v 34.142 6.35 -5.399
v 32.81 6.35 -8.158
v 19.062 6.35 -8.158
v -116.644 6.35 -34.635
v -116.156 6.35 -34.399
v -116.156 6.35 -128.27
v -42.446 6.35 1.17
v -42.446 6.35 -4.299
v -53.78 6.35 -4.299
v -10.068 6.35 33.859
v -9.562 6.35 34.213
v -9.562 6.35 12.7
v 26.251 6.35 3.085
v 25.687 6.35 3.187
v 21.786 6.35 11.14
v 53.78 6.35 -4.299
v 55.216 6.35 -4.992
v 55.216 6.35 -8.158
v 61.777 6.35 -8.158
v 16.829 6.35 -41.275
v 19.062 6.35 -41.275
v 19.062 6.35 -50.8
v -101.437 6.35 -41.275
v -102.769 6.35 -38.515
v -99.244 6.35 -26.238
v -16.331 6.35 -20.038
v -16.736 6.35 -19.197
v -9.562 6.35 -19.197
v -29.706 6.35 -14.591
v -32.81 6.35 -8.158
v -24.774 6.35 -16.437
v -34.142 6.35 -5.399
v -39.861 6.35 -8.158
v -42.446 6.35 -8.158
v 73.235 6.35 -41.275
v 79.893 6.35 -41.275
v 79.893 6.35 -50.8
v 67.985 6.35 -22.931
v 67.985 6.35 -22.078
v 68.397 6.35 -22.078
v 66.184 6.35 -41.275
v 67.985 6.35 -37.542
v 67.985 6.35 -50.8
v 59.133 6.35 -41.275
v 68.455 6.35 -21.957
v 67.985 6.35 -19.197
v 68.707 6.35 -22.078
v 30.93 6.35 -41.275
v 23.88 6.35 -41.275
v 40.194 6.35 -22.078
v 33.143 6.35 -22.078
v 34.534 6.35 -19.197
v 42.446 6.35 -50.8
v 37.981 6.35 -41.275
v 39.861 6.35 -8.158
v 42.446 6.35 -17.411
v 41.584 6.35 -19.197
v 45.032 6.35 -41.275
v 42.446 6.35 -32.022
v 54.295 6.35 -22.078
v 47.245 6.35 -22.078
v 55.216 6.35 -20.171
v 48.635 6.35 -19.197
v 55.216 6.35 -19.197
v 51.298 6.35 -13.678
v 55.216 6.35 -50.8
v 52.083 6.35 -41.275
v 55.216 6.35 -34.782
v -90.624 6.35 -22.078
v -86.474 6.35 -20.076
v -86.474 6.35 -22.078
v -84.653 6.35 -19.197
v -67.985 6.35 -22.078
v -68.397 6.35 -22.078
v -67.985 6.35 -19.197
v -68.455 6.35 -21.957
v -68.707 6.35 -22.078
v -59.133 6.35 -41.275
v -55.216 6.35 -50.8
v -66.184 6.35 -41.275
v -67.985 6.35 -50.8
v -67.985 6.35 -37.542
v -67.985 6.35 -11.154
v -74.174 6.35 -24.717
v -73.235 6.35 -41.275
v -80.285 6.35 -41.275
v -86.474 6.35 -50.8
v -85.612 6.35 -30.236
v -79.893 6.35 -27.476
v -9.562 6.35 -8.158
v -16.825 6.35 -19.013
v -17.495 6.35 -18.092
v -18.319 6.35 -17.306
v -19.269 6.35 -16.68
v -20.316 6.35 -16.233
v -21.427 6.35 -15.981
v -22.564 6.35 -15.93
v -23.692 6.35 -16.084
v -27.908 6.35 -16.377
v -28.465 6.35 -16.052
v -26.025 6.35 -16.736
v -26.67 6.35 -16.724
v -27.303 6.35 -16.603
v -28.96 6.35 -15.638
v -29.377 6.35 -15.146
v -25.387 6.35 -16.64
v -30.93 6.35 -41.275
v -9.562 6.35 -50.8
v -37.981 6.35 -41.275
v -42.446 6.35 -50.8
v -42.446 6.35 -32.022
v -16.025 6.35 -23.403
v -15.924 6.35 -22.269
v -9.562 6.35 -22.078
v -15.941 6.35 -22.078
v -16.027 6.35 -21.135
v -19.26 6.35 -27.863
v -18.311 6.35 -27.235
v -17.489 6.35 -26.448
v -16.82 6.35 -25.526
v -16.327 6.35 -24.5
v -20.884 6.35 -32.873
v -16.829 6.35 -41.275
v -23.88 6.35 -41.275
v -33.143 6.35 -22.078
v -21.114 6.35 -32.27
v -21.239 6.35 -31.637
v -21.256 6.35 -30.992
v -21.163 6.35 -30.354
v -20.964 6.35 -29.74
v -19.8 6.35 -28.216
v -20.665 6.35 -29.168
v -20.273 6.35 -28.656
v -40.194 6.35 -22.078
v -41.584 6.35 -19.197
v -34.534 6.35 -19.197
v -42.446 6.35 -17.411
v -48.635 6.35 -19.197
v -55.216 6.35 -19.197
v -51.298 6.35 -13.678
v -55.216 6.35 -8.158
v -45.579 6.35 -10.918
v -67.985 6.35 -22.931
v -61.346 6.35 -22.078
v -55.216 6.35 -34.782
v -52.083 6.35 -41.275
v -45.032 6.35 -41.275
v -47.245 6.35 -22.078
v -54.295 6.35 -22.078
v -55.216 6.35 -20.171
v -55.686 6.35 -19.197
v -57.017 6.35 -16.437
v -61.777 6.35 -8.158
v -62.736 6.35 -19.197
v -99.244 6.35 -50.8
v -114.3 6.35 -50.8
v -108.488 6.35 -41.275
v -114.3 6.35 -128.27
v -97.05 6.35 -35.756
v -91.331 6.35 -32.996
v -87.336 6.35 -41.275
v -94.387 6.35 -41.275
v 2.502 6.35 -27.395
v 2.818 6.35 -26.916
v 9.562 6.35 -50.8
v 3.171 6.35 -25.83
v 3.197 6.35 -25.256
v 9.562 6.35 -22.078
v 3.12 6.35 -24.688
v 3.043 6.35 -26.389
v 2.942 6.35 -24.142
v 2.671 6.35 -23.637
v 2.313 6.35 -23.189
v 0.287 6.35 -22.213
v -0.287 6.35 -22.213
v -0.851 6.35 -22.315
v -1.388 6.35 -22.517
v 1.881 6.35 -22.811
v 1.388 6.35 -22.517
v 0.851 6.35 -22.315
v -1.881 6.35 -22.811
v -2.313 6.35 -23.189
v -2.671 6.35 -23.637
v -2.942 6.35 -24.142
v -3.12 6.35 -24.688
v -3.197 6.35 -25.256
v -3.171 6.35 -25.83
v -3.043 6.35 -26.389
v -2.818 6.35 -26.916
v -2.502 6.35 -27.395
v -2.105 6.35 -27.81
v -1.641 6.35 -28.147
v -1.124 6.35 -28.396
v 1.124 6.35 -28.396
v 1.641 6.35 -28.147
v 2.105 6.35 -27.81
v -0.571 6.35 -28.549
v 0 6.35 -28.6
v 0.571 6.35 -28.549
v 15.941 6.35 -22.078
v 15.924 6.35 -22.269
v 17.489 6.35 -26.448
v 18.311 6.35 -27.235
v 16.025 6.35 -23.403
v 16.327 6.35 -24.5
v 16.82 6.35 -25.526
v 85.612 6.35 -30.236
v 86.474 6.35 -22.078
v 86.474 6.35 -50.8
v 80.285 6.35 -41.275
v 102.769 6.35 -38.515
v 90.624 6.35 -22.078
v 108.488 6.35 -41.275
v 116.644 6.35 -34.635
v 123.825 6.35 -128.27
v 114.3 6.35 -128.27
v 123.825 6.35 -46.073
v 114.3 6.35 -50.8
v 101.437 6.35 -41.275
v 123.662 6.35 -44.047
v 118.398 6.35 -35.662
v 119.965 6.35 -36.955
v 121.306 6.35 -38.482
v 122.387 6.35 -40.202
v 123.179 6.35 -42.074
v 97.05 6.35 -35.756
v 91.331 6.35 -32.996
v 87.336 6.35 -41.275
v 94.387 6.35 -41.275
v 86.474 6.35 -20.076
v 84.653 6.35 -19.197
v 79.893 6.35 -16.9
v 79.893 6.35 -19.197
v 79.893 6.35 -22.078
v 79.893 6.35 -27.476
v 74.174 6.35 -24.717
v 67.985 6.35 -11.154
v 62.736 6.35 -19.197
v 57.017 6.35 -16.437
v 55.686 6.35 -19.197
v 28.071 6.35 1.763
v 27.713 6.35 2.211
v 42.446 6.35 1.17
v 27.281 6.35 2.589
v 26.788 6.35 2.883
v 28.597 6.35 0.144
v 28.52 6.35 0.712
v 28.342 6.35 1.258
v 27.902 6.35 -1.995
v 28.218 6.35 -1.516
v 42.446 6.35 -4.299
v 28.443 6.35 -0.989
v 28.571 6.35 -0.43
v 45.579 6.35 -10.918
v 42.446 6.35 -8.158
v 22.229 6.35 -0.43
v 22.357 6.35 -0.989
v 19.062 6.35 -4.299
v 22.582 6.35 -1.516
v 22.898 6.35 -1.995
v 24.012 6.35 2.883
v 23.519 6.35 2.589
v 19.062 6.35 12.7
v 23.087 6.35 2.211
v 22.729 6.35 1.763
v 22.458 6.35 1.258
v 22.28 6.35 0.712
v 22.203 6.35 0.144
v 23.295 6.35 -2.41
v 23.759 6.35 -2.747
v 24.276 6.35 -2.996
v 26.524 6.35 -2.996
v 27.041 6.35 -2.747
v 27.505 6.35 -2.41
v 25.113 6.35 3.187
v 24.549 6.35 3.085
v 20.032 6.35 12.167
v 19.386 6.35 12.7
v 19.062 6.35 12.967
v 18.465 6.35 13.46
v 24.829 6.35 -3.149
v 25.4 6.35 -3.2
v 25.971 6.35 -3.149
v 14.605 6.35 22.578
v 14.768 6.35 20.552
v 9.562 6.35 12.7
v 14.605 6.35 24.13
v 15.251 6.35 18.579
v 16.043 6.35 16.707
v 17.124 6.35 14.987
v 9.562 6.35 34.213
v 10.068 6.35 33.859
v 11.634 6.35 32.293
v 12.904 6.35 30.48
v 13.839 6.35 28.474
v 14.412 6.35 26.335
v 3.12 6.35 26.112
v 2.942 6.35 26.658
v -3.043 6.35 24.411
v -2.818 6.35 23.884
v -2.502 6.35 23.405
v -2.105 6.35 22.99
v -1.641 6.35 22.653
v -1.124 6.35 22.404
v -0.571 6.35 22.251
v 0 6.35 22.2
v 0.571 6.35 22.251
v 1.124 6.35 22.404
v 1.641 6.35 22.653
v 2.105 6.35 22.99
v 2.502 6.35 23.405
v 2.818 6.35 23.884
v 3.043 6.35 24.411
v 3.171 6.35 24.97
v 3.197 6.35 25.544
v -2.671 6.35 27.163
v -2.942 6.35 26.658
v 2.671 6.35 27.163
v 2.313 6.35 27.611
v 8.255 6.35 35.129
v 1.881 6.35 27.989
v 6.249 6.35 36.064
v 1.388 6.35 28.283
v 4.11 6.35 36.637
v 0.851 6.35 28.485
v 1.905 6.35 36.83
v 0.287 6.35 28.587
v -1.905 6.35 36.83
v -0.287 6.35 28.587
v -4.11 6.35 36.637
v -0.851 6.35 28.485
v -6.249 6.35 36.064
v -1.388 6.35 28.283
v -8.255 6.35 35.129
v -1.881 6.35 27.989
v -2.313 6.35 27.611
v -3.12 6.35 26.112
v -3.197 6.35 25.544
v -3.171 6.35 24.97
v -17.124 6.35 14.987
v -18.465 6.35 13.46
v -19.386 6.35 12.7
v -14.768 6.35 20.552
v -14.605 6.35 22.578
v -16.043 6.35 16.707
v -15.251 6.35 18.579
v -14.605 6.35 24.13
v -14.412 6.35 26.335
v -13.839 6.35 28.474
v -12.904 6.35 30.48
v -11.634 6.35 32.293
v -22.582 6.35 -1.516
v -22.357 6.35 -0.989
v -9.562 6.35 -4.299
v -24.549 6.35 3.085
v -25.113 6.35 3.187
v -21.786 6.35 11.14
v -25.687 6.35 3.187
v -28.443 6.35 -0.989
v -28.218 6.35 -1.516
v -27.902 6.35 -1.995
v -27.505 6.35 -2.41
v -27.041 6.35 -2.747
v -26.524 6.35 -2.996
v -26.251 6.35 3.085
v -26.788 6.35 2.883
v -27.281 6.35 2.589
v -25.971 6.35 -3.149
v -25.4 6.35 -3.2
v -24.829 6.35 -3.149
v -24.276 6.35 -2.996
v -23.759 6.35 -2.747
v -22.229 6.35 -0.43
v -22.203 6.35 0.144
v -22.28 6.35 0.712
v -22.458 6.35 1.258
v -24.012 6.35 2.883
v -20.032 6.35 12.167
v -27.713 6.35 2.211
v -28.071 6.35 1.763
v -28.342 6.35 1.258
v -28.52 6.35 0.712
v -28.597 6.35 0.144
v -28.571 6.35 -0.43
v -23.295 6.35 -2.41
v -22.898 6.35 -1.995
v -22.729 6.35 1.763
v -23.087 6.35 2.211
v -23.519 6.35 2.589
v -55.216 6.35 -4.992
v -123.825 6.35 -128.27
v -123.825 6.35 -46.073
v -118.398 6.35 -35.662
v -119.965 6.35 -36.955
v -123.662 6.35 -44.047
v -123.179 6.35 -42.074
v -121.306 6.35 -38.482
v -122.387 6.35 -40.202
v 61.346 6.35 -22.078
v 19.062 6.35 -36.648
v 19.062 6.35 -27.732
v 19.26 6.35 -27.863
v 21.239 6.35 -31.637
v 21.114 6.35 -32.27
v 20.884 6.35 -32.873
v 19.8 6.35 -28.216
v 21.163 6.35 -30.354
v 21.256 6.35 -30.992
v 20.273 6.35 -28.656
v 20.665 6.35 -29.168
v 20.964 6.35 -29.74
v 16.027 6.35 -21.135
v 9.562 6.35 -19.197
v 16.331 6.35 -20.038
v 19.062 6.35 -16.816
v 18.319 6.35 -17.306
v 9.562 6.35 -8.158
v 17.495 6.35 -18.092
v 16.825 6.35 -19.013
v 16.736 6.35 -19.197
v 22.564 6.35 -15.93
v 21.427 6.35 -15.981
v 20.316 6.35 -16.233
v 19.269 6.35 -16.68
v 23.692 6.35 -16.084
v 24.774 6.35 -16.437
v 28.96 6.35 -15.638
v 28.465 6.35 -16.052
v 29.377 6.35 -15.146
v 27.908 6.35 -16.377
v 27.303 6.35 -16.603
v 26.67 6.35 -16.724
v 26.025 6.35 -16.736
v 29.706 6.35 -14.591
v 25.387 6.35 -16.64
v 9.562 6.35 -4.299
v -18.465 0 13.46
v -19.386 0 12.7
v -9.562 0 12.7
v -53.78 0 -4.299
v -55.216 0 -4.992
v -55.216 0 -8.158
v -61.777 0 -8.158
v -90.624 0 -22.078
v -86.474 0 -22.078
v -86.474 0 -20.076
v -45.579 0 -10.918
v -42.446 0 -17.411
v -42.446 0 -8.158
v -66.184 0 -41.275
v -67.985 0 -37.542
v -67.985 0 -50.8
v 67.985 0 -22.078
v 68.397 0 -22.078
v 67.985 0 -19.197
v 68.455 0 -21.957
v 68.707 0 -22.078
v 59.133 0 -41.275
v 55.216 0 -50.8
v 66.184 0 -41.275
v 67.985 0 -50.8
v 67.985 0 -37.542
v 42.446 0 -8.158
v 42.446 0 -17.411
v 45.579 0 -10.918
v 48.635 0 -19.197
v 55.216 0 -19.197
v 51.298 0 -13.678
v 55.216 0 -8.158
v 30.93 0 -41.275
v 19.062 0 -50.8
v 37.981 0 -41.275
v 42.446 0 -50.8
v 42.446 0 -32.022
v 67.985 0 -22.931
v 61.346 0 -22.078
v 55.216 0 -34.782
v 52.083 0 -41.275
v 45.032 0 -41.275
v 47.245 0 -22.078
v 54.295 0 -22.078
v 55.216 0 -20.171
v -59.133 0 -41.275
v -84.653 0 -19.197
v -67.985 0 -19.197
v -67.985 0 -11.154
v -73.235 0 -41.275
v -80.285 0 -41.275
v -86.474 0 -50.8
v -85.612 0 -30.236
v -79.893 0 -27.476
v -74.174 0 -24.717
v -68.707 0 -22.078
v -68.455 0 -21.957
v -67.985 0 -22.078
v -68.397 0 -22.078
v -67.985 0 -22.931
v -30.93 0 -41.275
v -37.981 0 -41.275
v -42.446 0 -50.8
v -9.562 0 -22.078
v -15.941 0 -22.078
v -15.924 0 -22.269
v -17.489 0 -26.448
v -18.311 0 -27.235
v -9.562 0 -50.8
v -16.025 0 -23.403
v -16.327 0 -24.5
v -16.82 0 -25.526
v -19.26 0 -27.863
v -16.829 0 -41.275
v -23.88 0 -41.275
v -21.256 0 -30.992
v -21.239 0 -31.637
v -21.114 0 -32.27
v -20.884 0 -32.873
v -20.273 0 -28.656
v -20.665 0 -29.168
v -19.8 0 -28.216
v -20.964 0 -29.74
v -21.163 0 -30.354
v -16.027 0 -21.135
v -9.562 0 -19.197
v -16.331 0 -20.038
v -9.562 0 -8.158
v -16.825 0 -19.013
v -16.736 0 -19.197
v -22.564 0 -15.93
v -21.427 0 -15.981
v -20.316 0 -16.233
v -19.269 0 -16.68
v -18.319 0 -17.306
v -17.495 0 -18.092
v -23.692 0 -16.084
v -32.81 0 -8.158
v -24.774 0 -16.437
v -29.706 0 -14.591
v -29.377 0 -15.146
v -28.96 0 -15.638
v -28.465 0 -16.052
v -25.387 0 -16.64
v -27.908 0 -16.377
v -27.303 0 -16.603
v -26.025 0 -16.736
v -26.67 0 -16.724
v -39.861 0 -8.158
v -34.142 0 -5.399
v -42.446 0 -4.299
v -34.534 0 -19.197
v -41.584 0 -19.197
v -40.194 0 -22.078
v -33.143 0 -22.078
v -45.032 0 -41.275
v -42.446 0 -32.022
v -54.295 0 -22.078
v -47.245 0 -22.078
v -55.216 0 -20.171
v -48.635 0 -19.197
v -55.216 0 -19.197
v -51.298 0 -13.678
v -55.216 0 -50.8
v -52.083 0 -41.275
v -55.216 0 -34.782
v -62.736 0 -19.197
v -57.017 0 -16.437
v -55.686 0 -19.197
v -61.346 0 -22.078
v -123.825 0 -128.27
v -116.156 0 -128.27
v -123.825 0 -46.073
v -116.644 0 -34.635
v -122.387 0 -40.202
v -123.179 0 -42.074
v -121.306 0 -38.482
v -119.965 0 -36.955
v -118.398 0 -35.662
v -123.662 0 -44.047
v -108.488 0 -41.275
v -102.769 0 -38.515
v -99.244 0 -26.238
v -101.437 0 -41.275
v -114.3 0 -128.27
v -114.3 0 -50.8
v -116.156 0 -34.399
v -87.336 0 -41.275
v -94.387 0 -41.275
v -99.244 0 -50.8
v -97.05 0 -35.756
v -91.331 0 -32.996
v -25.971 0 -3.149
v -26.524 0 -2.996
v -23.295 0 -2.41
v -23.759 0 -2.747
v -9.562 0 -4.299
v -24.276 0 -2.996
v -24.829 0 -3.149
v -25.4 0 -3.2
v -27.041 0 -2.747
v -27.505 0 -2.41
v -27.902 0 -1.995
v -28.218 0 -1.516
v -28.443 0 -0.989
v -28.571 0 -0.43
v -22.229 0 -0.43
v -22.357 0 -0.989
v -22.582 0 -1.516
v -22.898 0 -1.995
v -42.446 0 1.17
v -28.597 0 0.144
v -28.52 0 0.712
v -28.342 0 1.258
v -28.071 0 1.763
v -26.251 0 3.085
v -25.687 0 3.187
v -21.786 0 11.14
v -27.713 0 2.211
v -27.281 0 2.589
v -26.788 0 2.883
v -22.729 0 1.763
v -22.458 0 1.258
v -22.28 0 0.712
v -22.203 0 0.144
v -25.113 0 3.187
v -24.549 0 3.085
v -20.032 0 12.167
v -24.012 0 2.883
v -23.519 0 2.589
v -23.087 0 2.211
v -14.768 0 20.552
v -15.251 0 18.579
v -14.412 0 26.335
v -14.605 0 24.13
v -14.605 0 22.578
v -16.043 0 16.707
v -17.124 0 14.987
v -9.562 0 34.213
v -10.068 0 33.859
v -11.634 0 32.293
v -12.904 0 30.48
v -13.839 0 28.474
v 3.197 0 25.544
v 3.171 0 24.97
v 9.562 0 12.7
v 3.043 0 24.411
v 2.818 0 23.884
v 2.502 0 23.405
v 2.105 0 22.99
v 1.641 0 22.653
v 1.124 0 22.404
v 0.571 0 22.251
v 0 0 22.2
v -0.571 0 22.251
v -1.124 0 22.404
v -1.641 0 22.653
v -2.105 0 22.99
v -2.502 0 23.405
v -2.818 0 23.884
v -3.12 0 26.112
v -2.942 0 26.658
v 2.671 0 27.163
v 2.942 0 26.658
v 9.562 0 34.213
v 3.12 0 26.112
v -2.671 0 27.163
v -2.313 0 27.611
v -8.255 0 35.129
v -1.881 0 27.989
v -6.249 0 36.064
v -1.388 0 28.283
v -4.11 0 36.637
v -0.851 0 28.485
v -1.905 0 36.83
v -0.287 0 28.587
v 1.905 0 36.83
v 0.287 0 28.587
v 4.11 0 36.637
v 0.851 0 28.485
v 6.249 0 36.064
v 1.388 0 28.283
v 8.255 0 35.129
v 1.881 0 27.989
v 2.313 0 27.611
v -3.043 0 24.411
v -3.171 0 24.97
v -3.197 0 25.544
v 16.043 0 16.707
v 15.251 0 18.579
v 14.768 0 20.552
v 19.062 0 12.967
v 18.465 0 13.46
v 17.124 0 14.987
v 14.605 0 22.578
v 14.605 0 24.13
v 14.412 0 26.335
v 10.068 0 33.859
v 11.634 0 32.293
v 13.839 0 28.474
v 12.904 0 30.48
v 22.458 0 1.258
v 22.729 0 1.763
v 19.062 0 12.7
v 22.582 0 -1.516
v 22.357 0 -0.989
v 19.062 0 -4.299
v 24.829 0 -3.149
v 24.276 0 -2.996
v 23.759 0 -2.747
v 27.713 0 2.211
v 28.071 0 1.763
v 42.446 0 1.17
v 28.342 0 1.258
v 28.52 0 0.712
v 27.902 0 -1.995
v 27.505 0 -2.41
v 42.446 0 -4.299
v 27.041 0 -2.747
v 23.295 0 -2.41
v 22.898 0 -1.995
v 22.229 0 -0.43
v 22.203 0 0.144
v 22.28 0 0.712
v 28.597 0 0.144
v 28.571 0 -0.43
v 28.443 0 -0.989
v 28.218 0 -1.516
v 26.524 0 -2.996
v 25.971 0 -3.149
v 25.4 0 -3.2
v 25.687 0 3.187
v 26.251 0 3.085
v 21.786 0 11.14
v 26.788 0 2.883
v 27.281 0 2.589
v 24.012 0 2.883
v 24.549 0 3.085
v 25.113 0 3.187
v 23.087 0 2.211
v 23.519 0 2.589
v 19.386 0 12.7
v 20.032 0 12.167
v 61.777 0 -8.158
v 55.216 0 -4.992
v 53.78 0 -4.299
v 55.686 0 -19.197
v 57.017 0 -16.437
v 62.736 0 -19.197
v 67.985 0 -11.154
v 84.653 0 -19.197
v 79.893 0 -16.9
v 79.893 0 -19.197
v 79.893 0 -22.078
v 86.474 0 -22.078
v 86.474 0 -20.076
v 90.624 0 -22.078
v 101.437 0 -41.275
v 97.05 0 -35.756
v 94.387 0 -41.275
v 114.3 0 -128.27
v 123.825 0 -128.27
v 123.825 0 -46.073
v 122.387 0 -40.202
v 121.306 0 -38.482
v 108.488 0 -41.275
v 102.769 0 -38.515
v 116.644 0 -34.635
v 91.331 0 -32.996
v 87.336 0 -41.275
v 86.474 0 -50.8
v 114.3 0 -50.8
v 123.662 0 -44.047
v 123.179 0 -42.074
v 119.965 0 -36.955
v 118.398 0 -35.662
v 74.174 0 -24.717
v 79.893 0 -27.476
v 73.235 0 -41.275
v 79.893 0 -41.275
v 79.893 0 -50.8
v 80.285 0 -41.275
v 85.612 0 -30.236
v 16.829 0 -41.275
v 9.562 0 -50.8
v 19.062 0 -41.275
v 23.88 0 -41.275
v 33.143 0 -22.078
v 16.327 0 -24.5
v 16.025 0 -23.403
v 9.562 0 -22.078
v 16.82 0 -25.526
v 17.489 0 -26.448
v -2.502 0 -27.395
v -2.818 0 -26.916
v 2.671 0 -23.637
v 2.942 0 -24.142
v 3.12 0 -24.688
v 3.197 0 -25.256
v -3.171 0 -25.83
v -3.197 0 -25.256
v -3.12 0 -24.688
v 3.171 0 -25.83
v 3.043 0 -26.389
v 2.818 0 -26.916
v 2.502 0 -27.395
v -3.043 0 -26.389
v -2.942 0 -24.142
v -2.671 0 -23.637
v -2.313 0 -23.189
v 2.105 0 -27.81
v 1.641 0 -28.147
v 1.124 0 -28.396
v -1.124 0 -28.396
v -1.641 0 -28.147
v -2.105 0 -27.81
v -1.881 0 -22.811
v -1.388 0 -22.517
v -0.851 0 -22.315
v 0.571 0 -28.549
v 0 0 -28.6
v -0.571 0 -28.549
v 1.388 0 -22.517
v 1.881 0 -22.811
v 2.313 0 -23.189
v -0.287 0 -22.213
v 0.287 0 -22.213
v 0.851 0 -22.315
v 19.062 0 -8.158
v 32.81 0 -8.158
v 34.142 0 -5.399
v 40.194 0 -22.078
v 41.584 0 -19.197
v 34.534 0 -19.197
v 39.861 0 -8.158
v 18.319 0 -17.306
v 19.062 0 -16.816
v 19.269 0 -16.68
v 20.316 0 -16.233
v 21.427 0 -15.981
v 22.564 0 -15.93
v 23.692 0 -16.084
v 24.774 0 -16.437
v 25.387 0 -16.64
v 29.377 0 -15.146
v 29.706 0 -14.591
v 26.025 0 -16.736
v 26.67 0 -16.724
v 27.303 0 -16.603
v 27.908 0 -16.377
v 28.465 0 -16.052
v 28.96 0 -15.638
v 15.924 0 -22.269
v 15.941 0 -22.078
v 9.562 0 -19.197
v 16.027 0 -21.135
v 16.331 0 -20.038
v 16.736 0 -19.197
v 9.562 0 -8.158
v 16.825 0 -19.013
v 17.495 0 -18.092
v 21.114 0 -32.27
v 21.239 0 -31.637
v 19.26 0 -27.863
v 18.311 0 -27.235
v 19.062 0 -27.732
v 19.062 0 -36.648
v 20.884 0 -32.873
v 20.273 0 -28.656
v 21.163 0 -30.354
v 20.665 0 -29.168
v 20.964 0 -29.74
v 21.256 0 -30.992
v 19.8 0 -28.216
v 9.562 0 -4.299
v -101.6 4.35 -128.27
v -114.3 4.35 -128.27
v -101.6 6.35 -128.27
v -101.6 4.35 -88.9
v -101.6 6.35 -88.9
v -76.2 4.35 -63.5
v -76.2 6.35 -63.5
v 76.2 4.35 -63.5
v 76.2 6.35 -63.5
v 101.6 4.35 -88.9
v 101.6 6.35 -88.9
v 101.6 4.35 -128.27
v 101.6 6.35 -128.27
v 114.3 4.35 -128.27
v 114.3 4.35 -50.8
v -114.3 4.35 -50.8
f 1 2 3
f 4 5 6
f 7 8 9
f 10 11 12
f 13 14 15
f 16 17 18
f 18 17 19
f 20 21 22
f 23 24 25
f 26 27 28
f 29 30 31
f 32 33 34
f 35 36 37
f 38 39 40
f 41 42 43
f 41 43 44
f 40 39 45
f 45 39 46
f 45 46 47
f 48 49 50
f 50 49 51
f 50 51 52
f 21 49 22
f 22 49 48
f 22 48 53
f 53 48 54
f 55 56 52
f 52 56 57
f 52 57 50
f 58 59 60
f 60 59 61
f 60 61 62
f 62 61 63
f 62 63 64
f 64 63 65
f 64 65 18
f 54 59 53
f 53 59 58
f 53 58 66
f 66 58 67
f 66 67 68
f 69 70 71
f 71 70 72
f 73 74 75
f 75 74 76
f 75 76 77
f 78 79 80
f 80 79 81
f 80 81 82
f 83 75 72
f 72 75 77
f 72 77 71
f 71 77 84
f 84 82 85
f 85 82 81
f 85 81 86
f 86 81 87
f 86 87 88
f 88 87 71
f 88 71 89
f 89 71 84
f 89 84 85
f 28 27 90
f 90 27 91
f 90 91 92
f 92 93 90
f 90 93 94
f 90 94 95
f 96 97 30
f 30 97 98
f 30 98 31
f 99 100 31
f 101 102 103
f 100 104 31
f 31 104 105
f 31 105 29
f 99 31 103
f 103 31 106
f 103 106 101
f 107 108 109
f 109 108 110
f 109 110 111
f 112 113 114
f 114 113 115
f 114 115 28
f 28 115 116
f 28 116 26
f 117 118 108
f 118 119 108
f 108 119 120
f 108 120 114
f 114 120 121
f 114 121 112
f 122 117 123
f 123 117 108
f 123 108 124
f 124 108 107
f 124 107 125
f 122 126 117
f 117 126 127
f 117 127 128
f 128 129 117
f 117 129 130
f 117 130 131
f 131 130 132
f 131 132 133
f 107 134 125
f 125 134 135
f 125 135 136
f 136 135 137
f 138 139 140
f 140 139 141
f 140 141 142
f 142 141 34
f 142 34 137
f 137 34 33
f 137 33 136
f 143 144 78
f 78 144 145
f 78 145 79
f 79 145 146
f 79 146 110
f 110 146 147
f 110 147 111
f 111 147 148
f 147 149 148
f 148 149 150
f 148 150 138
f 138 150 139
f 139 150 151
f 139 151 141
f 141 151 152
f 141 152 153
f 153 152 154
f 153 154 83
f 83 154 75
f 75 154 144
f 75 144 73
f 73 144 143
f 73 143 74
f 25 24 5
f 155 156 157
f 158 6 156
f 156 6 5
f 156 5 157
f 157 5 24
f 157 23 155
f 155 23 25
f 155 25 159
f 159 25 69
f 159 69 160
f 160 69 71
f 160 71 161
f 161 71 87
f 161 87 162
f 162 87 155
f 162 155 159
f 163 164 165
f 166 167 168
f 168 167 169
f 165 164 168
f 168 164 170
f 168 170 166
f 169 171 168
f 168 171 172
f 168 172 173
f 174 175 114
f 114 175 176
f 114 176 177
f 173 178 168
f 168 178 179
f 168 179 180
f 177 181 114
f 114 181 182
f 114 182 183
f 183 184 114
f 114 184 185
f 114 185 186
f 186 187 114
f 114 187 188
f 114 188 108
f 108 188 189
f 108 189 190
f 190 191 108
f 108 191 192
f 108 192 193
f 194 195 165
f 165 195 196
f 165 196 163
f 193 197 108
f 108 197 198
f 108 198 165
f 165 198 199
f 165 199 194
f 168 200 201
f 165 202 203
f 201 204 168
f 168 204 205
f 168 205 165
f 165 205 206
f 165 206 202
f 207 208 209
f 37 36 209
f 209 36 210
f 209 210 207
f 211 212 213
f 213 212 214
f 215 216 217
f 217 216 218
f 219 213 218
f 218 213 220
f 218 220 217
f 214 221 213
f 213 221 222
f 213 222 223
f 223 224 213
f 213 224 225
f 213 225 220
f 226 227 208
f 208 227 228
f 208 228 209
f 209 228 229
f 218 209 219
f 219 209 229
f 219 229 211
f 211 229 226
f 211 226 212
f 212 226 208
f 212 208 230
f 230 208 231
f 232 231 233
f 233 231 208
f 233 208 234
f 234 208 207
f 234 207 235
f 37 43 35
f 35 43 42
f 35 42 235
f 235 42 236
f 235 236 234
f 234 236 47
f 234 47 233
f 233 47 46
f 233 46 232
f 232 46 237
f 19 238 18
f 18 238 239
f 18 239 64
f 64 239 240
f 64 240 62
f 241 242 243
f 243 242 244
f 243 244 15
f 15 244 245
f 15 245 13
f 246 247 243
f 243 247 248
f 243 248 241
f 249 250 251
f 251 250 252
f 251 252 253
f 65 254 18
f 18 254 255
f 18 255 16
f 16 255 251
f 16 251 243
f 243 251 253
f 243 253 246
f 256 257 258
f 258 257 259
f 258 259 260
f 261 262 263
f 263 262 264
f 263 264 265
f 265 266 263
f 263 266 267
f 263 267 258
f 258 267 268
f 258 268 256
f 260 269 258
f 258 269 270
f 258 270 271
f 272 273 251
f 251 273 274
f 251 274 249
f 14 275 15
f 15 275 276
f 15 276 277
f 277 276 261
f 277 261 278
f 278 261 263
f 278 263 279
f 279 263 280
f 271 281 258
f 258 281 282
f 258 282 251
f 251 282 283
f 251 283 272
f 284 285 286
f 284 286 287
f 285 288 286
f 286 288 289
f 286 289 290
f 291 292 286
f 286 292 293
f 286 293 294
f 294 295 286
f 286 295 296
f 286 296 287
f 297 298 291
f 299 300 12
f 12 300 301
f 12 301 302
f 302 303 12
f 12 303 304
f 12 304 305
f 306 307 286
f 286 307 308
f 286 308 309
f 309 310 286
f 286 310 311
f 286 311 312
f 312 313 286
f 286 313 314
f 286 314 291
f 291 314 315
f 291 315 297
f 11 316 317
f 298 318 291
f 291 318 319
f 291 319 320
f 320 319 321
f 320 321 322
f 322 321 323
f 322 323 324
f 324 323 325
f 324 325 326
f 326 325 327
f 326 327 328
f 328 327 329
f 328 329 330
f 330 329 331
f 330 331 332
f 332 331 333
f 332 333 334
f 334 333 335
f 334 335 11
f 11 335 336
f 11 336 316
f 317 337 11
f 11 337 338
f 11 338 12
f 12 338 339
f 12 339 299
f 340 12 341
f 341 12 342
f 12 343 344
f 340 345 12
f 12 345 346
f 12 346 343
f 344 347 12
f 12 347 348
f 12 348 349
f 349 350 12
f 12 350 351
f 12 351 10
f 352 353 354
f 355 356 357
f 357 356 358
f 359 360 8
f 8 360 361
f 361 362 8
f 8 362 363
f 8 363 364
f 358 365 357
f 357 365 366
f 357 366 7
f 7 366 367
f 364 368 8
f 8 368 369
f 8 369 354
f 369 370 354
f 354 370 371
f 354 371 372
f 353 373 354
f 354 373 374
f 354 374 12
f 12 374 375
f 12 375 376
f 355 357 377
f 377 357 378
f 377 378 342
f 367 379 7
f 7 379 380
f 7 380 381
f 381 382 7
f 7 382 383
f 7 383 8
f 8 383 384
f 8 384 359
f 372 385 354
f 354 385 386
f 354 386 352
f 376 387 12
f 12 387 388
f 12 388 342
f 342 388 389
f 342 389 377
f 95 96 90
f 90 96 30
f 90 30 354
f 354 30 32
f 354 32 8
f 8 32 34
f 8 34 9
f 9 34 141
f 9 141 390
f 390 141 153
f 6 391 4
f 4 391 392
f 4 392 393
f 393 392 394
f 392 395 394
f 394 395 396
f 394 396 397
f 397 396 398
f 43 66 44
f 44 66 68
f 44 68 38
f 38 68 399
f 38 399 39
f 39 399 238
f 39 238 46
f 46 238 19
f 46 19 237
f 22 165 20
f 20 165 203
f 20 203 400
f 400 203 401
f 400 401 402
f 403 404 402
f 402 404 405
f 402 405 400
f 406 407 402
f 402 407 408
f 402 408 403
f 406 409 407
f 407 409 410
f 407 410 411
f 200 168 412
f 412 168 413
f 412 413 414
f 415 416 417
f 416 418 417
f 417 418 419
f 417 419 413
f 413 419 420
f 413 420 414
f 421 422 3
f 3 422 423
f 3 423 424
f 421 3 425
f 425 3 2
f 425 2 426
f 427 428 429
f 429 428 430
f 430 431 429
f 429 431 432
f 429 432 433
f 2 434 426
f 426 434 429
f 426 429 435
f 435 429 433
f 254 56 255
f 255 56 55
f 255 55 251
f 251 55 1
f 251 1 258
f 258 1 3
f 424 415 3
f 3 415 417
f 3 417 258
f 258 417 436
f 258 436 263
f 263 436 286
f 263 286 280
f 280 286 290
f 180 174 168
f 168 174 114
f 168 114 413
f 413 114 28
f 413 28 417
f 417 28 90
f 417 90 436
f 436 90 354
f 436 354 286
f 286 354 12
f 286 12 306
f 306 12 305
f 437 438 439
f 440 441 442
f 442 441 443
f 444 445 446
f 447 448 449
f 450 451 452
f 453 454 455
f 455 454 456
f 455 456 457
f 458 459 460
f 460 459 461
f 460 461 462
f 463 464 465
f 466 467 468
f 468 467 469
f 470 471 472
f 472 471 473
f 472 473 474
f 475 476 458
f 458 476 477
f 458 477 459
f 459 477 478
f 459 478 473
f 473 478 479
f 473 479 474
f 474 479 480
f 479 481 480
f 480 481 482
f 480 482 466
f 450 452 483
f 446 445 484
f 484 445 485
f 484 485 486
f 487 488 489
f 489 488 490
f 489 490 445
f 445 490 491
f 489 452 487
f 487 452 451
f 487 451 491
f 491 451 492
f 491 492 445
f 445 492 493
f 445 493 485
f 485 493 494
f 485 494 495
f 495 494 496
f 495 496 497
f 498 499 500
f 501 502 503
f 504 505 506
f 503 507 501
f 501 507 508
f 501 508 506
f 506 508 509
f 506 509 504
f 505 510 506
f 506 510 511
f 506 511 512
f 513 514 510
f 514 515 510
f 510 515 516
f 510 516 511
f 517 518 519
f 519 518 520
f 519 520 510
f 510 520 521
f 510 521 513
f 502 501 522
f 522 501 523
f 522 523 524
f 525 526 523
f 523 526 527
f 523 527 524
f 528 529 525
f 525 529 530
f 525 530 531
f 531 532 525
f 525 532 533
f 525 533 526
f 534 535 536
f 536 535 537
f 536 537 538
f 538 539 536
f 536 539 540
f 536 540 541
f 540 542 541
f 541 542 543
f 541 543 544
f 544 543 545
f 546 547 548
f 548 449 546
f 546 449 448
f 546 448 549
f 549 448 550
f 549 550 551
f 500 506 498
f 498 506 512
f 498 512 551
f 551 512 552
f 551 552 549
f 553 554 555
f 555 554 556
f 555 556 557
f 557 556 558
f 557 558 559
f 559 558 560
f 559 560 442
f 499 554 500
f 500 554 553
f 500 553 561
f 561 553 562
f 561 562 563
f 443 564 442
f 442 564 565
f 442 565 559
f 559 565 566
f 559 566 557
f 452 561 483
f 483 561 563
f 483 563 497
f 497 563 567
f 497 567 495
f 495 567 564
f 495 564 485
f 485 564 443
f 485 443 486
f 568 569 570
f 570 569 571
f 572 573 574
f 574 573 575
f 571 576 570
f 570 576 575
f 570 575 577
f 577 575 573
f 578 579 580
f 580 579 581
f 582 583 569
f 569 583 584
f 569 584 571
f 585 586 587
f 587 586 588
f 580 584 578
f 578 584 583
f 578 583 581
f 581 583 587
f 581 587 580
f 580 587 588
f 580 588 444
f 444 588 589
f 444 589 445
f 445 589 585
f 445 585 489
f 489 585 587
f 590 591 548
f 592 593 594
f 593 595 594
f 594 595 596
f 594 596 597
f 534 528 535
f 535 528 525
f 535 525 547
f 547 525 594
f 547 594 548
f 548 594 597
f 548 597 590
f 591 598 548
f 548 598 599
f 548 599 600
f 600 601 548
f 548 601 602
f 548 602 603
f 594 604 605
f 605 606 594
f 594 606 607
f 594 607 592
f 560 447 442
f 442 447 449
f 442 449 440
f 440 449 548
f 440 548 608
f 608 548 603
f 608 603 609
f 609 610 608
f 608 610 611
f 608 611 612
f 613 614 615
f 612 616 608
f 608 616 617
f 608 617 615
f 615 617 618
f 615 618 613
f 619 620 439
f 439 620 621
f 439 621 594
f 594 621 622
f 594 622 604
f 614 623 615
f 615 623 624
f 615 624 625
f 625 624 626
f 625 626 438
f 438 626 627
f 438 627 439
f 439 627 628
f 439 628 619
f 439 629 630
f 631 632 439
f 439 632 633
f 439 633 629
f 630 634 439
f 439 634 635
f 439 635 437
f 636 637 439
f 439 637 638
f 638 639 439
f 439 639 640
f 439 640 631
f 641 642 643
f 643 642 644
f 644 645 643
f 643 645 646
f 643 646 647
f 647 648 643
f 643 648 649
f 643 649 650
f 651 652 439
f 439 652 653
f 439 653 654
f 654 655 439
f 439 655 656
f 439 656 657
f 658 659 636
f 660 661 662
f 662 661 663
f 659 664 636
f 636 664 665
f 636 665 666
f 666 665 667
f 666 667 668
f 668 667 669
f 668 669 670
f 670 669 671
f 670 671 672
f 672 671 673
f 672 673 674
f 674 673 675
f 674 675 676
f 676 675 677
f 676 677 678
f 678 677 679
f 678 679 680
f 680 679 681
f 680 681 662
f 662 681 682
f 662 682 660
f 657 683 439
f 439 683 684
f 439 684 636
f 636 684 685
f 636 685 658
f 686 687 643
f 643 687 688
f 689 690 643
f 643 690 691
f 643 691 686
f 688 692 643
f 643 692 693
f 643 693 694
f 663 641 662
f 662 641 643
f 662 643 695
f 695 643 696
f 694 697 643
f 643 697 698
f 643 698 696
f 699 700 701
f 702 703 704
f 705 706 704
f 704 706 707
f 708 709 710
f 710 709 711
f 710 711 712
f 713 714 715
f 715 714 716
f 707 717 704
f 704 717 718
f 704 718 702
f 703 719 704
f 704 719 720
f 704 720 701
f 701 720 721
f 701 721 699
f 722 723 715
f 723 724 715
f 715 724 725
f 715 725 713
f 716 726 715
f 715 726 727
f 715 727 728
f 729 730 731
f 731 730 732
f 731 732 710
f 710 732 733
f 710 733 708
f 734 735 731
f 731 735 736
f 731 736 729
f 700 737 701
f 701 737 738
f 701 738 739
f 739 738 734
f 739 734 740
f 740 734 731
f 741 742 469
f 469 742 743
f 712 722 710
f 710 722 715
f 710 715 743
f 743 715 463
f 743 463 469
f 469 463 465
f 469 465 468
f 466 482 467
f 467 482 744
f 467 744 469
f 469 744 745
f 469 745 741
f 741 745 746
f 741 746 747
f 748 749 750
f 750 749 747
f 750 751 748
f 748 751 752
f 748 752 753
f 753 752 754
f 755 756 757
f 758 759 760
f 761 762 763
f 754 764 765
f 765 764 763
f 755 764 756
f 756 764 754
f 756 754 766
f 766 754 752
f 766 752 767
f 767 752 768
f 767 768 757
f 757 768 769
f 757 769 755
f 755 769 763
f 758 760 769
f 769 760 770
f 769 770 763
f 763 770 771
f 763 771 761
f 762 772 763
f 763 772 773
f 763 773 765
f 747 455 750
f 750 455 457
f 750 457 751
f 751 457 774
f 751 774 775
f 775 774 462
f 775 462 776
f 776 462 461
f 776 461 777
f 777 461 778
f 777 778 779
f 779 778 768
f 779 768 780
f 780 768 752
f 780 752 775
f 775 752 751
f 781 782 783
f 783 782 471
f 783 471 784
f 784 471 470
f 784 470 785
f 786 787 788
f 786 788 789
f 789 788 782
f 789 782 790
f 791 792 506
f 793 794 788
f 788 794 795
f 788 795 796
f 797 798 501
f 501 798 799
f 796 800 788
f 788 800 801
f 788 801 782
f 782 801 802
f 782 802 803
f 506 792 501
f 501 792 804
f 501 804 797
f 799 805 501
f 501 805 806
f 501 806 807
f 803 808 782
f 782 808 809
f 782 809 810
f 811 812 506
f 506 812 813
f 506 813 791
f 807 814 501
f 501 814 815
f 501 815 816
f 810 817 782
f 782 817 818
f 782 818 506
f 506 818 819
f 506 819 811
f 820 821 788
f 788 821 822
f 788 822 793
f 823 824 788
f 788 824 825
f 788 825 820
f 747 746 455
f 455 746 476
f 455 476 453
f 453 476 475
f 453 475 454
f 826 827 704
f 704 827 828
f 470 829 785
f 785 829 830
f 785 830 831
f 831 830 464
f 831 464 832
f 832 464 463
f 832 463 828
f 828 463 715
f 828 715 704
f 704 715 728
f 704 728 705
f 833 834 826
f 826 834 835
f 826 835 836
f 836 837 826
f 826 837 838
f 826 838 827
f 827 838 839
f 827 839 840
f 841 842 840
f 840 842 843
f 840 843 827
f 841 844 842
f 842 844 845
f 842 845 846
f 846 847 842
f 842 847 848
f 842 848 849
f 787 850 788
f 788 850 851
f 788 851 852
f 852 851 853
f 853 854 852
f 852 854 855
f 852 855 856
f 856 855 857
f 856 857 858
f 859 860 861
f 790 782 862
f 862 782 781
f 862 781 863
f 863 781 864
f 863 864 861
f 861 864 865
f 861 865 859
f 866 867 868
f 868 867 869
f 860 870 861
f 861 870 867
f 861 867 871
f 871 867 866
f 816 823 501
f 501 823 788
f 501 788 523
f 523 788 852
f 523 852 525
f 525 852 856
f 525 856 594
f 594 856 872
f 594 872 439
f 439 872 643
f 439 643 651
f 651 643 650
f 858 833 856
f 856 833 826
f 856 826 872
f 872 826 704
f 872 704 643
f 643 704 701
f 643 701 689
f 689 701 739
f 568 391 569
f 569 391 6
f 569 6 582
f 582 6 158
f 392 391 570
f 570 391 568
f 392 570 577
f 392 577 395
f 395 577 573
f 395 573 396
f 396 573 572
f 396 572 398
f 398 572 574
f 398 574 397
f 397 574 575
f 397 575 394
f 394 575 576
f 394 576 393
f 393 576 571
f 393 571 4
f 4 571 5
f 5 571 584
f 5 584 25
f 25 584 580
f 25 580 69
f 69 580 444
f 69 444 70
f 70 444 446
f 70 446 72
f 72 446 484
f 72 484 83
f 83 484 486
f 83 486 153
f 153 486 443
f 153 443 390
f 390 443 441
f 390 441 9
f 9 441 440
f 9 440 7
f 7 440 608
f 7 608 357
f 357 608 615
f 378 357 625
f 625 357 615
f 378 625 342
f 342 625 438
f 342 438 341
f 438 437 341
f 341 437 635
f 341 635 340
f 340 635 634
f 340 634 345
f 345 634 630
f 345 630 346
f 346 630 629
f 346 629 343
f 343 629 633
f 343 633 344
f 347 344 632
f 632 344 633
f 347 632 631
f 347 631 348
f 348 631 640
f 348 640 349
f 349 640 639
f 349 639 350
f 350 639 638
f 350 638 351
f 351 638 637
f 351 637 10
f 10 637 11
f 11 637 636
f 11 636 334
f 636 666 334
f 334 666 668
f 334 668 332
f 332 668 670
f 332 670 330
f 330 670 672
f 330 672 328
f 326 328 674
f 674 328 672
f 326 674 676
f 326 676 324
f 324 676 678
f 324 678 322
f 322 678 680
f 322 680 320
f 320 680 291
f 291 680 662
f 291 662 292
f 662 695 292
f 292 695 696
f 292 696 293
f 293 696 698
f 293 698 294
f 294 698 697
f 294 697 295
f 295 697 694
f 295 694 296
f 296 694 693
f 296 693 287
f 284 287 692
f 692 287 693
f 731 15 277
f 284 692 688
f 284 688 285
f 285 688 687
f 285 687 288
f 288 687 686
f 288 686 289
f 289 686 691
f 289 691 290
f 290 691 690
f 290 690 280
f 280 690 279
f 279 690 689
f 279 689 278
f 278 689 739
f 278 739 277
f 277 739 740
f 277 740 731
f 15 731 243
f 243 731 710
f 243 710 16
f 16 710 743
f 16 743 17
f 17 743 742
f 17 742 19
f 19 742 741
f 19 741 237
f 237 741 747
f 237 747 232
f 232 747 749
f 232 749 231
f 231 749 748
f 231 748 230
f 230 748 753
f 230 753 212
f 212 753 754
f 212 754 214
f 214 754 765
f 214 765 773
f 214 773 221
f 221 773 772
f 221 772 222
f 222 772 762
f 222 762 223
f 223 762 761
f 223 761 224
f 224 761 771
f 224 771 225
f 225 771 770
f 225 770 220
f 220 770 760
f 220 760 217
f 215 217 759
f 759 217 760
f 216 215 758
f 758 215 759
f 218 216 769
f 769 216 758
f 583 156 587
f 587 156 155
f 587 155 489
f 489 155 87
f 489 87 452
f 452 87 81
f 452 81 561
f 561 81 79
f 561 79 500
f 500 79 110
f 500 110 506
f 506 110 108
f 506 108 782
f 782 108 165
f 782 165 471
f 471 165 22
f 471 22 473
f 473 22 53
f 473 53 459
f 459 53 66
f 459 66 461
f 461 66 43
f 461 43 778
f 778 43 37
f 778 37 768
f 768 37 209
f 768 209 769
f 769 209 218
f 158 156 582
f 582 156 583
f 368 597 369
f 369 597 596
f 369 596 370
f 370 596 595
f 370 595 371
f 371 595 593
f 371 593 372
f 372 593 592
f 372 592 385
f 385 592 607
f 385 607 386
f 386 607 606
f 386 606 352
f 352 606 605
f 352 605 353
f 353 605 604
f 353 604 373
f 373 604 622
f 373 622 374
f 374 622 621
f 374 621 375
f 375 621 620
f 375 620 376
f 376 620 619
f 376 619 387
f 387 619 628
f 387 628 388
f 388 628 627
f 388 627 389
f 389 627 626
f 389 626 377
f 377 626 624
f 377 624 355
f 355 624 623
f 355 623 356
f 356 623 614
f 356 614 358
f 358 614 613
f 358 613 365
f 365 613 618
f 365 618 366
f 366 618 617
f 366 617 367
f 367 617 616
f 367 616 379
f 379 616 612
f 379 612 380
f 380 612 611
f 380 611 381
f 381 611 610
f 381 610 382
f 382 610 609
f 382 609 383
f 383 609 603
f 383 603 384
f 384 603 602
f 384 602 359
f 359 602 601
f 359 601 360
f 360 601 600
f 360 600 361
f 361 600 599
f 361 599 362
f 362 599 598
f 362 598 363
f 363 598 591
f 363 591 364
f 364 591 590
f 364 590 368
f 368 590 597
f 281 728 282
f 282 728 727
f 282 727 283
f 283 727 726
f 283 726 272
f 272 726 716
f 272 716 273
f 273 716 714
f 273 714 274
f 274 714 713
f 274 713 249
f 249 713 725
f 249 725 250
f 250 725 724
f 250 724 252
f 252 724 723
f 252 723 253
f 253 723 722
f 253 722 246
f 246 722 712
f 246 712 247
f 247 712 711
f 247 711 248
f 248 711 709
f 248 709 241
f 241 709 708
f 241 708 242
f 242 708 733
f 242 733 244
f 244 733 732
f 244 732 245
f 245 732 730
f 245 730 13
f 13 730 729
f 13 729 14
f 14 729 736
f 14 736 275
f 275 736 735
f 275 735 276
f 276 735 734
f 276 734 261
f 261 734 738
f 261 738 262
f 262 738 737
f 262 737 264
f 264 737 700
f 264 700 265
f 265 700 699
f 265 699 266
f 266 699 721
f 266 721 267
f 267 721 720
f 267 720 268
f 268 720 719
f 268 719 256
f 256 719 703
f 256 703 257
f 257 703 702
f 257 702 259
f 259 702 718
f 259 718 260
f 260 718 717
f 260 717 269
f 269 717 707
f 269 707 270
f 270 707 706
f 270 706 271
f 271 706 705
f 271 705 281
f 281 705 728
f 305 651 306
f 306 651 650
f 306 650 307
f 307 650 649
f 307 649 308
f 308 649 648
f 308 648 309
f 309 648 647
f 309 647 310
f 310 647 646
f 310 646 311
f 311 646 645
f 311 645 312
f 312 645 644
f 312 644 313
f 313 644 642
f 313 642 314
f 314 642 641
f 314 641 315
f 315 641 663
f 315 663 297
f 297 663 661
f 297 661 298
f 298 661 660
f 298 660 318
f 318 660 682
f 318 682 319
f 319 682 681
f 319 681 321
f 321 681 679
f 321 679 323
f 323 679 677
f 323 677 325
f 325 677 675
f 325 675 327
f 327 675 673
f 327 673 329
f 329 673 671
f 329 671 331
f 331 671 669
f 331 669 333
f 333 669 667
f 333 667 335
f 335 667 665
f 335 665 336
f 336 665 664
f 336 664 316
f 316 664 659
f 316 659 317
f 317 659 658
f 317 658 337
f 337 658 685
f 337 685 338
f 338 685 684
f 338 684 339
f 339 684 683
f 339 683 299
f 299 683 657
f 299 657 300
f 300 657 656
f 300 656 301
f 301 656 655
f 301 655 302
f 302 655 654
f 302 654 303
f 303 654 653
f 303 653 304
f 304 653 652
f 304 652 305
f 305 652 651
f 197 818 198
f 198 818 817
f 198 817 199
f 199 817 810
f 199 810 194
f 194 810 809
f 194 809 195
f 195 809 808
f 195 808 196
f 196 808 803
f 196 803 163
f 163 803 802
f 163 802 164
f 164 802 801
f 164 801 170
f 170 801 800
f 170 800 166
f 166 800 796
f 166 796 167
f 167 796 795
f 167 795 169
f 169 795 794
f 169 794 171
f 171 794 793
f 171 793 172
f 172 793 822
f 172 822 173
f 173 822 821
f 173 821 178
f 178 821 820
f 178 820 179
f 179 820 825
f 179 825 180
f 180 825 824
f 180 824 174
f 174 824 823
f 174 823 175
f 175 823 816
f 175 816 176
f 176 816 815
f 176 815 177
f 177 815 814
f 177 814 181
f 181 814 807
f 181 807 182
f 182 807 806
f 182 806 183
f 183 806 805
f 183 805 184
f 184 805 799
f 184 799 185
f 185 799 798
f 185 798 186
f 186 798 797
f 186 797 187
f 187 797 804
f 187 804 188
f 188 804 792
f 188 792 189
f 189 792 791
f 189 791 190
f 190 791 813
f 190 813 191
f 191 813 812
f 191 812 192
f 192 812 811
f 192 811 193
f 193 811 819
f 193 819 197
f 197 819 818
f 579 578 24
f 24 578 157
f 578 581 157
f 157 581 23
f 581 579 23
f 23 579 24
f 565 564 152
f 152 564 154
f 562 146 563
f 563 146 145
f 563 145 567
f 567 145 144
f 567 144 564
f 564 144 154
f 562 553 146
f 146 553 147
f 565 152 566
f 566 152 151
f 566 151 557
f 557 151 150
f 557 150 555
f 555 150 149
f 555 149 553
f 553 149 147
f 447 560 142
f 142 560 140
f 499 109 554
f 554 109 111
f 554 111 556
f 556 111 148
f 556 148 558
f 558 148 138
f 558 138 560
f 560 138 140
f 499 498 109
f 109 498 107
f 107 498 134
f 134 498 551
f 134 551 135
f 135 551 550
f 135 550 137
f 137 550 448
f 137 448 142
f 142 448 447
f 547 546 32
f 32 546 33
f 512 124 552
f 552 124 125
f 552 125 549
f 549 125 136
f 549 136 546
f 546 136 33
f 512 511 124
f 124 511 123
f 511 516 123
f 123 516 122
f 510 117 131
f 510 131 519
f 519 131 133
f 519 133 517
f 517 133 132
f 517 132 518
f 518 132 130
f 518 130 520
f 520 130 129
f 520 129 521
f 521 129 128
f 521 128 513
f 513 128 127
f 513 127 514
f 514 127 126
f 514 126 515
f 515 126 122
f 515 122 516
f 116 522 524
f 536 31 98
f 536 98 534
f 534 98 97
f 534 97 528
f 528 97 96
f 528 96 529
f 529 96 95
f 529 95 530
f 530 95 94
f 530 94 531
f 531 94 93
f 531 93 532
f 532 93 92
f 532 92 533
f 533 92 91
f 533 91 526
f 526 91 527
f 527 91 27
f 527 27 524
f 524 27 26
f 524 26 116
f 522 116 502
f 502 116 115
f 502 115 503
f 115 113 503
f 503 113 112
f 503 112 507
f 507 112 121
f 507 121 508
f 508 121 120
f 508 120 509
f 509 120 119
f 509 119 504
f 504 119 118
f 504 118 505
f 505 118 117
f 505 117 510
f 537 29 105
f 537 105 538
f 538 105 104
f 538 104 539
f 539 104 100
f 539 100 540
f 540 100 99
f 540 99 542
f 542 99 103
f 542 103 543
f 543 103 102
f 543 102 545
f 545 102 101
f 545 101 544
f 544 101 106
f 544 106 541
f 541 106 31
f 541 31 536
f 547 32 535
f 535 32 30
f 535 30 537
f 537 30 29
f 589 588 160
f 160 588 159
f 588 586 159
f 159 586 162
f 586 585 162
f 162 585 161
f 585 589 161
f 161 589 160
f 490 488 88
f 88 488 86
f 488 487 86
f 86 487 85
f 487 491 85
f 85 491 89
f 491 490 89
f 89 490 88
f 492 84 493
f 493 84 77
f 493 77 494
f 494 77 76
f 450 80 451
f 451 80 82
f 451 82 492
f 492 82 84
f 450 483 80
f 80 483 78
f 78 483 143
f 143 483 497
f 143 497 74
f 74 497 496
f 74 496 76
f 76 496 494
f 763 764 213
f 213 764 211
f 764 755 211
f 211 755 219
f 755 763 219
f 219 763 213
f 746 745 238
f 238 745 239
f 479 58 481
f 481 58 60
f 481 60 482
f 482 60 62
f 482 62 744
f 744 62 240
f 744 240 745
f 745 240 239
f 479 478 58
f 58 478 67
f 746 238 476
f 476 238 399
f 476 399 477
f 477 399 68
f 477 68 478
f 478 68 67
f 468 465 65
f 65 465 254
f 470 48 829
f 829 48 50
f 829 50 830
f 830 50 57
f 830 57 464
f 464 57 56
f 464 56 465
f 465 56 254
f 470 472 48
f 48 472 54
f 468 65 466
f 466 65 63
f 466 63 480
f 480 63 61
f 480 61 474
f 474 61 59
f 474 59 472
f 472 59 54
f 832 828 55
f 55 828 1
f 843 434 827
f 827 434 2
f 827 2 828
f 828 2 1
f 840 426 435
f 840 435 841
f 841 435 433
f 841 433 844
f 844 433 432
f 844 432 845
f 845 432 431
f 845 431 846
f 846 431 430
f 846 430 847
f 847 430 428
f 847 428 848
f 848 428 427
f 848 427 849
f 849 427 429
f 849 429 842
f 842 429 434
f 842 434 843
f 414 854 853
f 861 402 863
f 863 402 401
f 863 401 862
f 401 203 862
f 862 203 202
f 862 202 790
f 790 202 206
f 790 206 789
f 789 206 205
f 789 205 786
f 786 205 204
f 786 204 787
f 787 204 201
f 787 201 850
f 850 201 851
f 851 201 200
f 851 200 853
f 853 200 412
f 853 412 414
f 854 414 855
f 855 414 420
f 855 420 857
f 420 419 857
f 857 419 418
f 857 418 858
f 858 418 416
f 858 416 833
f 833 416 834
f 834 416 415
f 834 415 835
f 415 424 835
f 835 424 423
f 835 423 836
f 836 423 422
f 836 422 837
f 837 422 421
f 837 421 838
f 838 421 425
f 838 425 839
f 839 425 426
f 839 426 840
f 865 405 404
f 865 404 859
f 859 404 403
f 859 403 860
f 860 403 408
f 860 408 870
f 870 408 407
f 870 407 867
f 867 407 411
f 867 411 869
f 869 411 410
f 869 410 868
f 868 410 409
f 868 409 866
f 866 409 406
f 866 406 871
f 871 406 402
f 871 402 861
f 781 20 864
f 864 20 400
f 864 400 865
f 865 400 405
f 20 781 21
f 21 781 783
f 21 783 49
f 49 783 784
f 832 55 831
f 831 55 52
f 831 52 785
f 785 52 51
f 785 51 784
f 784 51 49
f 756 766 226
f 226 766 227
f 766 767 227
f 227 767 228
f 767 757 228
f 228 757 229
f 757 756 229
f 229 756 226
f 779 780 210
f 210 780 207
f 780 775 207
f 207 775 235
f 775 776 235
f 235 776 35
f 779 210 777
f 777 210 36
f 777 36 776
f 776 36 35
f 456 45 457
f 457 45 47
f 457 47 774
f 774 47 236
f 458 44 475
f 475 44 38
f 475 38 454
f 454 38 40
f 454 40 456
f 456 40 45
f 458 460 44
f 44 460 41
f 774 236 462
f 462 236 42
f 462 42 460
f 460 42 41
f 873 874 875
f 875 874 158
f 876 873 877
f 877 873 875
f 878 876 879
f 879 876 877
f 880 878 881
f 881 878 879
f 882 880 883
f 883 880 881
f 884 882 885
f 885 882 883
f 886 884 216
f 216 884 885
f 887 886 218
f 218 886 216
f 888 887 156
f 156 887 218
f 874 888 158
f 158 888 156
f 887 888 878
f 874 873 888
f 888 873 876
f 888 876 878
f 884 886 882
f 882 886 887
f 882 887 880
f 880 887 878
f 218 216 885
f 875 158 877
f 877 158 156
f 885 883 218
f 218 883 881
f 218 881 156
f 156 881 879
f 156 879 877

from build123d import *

# Parameters (mm, degrees)
BOSS_EXTRUDE1_DEPTH  = 6.35
M6_CLEARANCE_HOLE1_D = 6.4
CUT_EXTRUDE1_DEPTH   = 7.35
BOSS_EXTRUDE2_DEPTH  = 2


with BuildPart() as part:
    # Sketch1 → Boss-Extrude1 (new body)
    with BuildSketch(Plane(origin=(0, 0, 0), x_dir=(1, 0, 0), z_dir=(0, 1, 0))):
        with BuildLine():
            Line((-114.3, 128.27), (-114.3, 50.8))
            Line((-114.3, 50.8), (114.3, 50.8))
            Line((114.3, 50.8), (114.3, 128.27))
            Line((114.3, 128.27), (123.825, 128.27))
            Line((123.825, 128.27), (123.825, 46.072872191))
            ThreePointArc((123.825, 46.072872191), (121.881092646, 39.32035629), (116.644453387, 34.634968786))
            Line((116.644453387, 34.634968786), (21.785546613, -11.139968786))
            ThreePointArc((21.785546613, -11.139968786), (16.548907354, -15.82535629), (14.605, -22.577872191))
            Line((14.605, -22.577872191), (14.605, -24.13))
            ThreePointArc((14.605, -24.13), (10.885256121, -33.110256121), (1.905, -36.83))
            Line((1.905, -36.83), (-1.905, -36.83))
            ThreePointArc((-1.905, -36.83), (-10.885256121, -33.110256121), (-14.605, -24.13))
            Line((-14.605, -24.13), (-14.605, -22.577872191))
            ThreePointArc((-14.605, -22.577872191), (-16.548907354, -15.82535629), (-21.785546613, -11.139968786))
            Line((-21.785546613, -11.139968786), (-116.644453387, 34.634968786))
            ThreePointArc((-116.644453387, 34.634968786), (-121.881092646, 39.32035629), (-123.825, 46.072872191))
            Line((-123.825, 46.072872191), (-123.825, 128.27))
            Line((-123.825, 128.27), (-114.3, 128.27))
        make_face()
    extrude(amount=BOSS_EXTRUDE1_DEPTH)

    # M6 Clearance Hole1 (through all)
    with Locations(Plane(origin=(0, 0, 0), x_dir=(-1, 0, 0), z_dir=(0, -1, 0))):
        with Locations((0, 25.4), (0, -25.4), (-25.4, 0), (25.4, 0)):
            Hole(M6_CLEARANCE_HOLE1_D / 2)

    # Sketch7 → Cut-Extrude1 (cut, through all)
    with BuildSketch(Plane(origin=(0, 6.35, 0), x_dir=(1, 0, 0), z_dir=(0, 1, 0))):
        Polygon((-62.736332011, 19.197186451), (-52.082503379, 41.275), (-45.031823098, 41.275), (-57.017380308, 16.437459757), align=None)
        Polygon((-108.487945631, 41.275), (-101.43726535, 41.275), (-102.768993928, 38.515273306), align=None)
        Polygon((-97.050042226, 35.755546613), (-94.386585068, 41.275), (-87.335904787, 41.275), (-91.331090523, 32.995819919), align=None)
        Polygon((-80.285224505, 41.275), (-73.234544224, 41.275), (-79.893187118, 27.476366532), (-85.612138821, 30.236093225), align=None)
        Polygon((-74.174235416, 24.716639838), (-66.183863942, 41.275), (-59.133183661, 41.275), (-68.455283713, 21.956913144), align=None)
        Polygon((-51.298428605, 13.677733063), (-37.981142816, 41.275), (-30.930462535, 41.275), (-45.579476903, 10.91800637), align=None)
        with BuildLine():
            Line((-39.8605252, 8.158279676), (-23.879782253, 41.275))
            Line((-23.879782253, 41.275), (-16.829101972, 41.275))
            Line((-16.829101972, 41.275), (-20.883675601, 32.872751034))
            ThreePointArc((-20.883675601, 32.872751034), (-21.07676276, 30.042435177), (-19.260389215, 27.863270739))
            ThreePointArc((-19.260389215, 27.863270739), (-16.554911905, 19.514136914), (-24.774287238, 16.436879654))
            ThreePointArc((-24.774287238, 16.436879654), (-27.61041535, 16.50281776), (-29.705912438, 14.590525299))
            Line((-29.705912438, 14.590525299), (-34.141573498, 5.398552982))
            Line((-34.141573498, 5.398552982), (-39.8605252, 8.158279676))
        make_face()
    cut_extrude1 = extrude(amount=-CUT_EXTRUDE1_DEPTH, mode=Mode.SUBTRACT)

    # Mirror1: Cut-Extrude1 across plane
    add(cut_extrude1.mirror(Plane(origin=(0, 0, 0), x_dir=(0, 0, 1), z_dir=(1, 0, 0))), mode=Mode.SUBTRACT)


with BuildPart() as body_2:
    # Sketch8 → Boss-Extrude2 (new body)
    with BuildSketch(Plane(origin=(0, 6.35, 0), x_dir=(1, 0, 0), z_dir=(0, 1, 0))):
        Polygon((114.3, 128.27), (101.6, 128.27), (101.6, 88.9), (76.2, 63.5), (-76.2, 63.5), (-101.6, 88.9), (-101.6, 128.27), (-114.3, 128.27), (-114.3, 50.8), (114.3, 50.8), align=None)
    extrude(amount=-BOSS_EXTRUDE2_DEPTH)


solid = Compound([part.part, body_2.part])
